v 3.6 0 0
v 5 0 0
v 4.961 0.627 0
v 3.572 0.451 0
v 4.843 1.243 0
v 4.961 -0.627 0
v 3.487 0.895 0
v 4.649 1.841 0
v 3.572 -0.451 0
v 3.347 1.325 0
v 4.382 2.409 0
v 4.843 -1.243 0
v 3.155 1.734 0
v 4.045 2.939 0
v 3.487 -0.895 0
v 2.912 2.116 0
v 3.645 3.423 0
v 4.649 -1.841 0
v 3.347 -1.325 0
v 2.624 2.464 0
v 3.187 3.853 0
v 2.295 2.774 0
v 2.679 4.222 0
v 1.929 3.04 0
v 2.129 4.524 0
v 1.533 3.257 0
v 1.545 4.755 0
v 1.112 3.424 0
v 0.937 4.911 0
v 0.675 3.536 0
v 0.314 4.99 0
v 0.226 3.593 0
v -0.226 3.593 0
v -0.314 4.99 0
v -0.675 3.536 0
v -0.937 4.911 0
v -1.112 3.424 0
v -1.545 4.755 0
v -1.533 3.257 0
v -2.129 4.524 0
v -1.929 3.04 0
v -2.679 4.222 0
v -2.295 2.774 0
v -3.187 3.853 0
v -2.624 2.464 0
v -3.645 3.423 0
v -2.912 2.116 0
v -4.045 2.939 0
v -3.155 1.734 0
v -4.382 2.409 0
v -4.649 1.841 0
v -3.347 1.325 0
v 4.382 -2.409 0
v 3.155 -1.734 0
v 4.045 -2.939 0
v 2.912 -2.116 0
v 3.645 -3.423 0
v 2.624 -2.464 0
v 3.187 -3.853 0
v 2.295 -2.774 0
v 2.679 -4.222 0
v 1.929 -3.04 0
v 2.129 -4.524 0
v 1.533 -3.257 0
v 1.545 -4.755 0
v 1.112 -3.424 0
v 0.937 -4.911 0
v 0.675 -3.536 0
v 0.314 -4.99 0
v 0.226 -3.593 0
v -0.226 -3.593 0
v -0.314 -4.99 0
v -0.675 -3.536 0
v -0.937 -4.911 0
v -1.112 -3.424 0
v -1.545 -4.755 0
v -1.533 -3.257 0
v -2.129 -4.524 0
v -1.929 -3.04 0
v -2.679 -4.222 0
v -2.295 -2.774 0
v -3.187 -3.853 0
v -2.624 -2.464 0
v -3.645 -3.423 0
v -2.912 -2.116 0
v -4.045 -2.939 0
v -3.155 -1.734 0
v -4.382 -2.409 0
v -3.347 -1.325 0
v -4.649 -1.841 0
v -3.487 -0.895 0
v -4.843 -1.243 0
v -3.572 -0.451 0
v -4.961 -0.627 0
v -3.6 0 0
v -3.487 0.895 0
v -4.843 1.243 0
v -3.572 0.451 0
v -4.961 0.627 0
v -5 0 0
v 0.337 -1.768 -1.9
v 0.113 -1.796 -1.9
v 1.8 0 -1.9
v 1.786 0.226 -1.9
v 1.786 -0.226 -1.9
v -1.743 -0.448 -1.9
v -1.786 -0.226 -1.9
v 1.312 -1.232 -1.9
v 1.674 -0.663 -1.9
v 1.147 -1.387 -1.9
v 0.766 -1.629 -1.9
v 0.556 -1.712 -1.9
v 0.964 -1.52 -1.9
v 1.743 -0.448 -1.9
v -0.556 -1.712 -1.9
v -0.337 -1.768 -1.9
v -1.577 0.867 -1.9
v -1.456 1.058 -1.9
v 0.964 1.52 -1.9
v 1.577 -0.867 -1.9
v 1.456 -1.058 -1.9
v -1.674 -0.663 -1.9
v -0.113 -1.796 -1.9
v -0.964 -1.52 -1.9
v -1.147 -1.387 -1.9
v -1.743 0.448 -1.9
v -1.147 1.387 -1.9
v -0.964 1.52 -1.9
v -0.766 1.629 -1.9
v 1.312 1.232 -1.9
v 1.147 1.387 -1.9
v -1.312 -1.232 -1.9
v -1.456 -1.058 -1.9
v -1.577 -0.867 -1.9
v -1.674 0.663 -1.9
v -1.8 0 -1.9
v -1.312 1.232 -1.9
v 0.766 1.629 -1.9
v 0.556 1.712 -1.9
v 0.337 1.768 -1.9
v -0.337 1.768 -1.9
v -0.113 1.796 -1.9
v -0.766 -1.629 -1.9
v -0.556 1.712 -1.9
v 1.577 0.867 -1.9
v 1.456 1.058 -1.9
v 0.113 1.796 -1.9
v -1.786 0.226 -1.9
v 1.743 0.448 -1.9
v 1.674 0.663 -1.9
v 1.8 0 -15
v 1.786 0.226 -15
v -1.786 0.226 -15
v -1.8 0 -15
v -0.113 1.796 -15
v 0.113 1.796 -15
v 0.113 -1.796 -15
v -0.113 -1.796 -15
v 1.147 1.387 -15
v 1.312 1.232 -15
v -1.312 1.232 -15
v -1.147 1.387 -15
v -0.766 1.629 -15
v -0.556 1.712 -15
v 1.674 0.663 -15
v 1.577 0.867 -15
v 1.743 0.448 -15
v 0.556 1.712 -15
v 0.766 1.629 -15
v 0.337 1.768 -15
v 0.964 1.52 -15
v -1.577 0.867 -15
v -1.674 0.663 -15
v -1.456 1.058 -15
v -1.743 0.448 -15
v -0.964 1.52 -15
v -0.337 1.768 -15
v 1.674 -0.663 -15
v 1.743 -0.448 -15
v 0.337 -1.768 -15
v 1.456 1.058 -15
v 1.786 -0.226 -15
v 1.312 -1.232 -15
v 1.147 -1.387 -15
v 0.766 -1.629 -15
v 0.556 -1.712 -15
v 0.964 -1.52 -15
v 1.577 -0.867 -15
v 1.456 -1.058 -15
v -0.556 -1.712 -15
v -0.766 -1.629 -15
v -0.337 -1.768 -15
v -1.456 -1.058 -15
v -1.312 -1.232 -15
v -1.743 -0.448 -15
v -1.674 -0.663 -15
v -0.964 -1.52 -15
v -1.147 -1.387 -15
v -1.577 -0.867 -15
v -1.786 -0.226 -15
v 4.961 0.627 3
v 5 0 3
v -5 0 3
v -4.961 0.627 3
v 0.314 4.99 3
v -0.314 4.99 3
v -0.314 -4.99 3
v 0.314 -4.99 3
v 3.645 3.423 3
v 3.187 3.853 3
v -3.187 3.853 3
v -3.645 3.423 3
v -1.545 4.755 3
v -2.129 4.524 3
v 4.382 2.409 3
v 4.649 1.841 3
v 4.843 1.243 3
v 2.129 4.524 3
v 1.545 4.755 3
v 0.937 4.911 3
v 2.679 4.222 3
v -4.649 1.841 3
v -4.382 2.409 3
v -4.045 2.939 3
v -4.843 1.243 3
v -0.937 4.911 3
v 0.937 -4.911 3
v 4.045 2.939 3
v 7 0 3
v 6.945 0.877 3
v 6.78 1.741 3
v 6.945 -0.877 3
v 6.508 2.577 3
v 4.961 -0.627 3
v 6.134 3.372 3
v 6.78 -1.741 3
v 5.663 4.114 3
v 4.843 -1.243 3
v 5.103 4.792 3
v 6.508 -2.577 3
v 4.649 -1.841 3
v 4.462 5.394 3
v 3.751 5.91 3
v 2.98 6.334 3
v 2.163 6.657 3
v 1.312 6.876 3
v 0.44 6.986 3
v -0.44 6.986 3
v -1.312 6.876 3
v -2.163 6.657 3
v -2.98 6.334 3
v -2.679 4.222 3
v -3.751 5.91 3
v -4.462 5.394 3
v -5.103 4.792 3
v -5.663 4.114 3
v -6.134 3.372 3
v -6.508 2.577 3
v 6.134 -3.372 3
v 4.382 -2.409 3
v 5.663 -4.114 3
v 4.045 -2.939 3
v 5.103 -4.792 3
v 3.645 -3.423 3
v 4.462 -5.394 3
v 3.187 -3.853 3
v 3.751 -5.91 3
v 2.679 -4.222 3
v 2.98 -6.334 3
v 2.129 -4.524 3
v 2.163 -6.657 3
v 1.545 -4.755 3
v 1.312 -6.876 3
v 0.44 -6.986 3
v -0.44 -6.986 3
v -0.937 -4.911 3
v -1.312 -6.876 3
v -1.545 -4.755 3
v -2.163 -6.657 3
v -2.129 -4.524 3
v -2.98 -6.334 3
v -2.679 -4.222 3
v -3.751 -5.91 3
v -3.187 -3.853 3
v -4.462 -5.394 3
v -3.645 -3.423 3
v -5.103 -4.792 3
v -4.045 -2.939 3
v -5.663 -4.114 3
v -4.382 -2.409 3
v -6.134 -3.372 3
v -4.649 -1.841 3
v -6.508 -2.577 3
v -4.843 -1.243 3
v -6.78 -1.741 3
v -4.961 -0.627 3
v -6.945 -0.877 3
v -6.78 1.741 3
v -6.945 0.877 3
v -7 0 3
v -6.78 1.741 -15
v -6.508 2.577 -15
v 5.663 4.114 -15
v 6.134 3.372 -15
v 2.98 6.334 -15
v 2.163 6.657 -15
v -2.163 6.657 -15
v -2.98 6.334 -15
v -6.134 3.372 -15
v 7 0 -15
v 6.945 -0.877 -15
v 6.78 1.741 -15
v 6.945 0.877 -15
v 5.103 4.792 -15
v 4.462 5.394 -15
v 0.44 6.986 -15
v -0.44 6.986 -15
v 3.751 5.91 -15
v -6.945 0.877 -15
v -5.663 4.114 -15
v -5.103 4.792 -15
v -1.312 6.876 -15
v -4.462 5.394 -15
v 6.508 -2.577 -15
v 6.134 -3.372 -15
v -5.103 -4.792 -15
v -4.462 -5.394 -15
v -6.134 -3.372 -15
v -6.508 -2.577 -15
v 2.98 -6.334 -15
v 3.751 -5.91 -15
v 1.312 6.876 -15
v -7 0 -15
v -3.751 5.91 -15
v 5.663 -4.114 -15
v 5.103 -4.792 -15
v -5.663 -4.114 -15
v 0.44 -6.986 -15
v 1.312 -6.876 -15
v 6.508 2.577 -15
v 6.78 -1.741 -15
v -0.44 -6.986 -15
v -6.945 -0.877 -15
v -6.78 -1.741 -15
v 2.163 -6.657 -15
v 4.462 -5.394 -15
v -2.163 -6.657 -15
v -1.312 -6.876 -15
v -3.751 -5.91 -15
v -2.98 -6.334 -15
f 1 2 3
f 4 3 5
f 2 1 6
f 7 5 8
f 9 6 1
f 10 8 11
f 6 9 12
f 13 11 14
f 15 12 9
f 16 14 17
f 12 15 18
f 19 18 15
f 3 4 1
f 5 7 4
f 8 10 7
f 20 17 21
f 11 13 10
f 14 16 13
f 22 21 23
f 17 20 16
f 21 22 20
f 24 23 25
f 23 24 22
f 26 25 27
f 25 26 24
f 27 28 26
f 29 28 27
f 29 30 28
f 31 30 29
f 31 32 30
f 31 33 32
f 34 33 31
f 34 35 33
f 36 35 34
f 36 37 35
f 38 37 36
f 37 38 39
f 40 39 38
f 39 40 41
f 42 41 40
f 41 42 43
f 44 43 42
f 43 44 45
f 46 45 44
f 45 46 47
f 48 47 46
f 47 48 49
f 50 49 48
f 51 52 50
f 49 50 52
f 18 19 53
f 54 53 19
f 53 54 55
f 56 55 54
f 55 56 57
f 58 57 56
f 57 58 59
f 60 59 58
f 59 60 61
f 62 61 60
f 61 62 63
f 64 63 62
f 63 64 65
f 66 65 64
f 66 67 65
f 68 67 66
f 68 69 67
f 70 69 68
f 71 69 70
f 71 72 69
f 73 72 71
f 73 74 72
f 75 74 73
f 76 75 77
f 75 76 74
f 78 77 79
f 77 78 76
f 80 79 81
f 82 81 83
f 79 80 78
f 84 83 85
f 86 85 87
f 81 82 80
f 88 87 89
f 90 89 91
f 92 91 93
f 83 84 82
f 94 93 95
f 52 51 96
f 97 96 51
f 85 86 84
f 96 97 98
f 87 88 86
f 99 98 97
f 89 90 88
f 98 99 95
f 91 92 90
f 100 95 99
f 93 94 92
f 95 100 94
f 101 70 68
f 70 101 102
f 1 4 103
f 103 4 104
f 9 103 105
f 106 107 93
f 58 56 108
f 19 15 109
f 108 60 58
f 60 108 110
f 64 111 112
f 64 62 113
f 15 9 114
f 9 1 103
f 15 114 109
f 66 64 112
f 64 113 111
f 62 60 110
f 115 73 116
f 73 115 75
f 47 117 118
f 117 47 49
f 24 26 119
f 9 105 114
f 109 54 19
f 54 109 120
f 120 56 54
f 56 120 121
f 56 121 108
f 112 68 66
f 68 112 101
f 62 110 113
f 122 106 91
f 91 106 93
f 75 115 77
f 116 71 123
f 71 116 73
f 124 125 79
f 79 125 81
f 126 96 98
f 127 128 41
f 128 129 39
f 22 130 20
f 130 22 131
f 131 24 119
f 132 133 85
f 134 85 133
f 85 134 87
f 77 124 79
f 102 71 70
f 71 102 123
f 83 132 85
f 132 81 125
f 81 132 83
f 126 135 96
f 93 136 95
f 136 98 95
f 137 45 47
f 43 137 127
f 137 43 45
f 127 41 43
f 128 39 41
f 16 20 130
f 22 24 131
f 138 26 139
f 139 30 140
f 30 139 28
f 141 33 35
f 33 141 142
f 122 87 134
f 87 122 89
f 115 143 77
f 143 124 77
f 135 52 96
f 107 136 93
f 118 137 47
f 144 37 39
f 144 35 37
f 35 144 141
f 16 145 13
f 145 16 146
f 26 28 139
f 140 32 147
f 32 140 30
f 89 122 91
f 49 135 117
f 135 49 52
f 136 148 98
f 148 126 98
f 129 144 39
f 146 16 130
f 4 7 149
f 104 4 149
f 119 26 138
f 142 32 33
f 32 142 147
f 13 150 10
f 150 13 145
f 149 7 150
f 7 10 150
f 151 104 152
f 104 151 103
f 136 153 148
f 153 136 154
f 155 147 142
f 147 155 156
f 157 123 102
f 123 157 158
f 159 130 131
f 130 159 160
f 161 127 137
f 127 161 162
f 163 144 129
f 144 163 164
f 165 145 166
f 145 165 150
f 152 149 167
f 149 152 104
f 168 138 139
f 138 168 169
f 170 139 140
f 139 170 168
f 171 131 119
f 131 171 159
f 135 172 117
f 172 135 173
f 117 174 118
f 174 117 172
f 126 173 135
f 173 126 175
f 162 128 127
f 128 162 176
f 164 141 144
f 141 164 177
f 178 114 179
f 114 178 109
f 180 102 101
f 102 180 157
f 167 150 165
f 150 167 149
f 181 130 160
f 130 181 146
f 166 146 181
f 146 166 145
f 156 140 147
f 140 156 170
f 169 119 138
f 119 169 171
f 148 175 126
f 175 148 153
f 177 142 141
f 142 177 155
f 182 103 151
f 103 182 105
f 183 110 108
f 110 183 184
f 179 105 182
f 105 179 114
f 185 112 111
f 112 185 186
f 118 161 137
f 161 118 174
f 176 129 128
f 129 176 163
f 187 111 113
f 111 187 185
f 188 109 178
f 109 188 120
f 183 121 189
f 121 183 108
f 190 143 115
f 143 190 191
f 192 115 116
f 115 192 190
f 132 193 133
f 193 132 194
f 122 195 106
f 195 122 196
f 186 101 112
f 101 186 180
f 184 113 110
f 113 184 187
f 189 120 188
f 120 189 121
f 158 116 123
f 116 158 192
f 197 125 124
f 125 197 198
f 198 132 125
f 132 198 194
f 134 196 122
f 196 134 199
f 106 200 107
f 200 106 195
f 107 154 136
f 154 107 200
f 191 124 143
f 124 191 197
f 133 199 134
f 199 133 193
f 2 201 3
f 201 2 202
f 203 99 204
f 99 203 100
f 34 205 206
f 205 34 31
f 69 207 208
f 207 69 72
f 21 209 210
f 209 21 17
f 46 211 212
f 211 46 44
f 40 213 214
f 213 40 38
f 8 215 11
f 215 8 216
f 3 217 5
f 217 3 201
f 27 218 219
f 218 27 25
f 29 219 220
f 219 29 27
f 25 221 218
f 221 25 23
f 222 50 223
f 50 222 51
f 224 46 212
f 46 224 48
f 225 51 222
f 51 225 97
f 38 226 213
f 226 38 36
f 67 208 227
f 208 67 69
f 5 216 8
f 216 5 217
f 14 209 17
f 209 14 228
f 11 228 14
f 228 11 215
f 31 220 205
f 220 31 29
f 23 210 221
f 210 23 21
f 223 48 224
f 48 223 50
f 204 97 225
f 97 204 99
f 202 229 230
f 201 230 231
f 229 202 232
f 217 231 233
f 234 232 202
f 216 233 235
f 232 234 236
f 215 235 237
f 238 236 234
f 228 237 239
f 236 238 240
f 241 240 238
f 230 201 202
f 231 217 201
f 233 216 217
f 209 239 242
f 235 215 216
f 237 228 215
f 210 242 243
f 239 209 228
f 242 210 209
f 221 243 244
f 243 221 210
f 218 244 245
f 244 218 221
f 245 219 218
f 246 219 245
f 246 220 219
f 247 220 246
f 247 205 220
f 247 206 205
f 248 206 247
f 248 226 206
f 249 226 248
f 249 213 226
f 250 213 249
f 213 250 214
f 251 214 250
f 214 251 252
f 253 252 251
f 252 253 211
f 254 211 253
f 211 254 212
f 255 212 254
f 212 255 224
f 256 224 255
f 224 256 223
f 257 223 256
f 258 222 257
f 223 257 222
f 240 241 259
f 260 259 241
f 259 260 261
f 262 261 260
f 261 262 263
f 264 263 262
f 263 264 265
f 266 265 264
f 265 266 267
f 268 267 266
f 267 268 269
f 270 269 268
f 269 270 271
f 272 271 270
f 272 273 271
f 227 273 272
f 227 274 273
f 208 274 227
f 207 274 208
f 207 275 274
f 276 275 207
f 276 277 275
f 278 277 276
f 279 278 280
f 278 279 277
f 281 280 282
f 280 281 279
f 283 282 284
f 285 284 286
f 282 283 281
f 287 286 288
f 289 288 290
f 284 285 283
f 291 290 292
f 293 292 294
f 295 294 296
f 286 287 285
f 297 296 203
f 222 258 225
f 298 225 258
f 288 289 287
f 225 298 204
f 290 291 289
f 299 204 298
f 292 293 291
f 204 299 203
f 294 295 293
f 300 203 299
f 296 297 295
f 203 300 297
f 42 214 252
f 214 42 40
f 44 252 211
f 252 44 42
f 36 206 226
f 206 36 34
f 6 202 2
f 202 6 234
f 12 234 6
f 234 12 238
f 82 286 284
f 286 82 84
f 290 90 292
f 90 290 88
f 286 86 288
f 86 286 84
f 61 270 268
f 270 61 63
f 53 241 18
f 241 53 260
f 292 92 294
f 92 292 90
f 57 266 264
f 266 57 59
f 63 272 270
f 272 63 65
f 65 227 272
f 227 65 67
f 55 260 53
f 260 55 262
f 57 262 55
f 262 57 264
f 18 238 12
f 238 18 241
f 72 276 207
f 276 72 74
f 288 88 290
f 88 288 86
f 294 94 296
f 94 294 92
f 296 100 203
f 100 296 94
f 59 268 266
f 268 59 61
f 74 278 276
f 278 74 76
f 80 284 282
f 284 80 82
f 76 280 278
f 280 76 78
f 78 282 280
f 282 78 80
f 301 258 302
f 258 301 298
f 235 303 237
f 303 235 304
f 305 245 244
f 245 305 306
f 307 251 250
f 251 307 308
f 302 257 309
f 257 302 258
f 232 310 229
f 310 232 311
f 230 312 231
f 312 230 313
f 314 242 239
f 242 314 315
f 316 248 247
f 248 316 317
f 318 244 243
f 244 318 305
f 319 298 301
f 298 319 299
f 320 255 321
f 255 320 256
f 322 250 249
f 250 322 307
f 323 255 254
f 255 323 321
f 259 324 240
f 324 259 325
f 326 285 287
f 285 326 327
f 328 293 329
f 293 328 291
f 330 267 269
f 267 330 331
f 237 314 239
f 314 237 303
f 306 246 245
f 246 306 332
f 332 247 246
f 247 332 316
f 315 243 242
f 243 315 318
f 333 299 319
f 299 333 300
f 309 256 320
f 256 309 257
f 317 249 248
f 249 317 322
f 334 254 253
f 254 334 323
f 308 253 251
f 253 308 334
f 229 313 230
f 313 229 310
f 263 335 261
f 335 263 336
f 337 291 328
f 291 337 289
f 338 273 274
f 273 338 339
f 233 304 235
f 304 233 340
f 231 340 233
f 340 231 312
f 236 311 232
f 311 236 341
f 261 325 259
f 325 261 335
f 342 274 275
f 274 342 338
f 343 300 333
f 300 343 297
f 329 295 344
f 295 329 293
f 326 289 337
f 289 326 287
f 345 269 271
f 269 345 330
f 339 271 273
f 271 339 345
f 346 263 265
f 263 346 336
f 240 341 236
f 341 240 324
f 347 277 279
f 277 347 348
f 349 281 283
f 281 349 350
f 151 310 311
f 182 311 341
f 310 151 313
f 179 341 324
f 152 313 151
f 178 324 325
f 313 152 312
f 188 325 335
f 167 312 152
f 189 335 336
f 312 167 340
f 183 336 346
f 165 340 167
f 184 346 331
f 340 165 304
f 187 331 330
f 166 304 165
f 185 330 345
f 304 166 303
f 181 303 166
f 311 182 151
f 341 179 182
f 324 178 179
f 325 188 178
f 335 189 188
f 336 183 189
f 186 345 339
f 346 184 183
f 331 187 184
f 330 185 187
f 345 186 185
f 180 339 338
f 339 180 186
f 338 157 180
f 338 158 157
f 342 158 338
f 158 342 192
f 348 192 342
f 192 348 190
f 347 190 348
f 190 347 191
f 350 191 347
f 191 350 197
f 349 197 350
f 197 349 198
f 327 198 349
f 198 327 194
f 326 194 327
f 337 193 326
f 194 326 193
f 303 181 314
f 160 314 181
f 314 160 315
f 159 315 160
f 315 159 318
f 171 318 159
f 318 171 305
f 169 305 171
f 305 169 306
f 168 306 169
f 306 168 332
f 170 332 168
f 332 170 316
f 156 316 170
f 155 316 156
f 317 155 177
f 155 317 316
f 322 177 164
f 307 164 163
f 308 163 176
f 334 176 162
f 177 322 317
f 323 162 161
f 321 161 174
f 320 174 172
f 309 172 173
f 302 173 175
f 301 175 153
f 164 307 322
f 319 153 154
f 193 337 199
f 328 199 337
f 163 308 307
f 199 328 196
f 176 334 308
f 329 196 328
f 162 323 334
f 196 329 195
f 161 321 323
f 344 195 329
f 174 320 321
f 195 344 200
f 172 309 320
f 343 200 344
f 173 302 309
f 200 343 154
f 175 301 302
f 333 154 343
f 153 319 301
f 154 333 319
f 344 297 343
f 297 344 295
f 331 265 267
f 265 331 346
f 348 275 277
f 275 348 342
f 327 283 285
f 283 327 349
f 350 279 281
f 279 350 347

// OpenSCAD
$fn = 50;


difference() {
	union() {
		translate(v = [0, 0, -15.0000000000]) {
			cylinder(h = 18, r = 7.0000000000);
		}
	}
	union() {
		translate(v = [0, 0, 0]) {
			rotate(a = [0, 0, 0]) {
				difference() {
					union() {
						translate(v = [0, 0, -18.0000000000]) {
							cylinder(h = 18, r = 1.5000000000);
						}
						translate(v = [0, 0, -1.9000000000]) {
							cylinder(h = 1.9000000000, r1 = 1.8000000000, r2 = 3.6000000000);
						}
						translate(v = [0, 0, -18.0000000000]) {
							cylinder(h = 18, r = 1.8000000000);
						}
						translate(v = [0, 0, -18.0000000000]) {
							cylinder(h = 18, r = 1.5000000000);
						}
					}
					union();
				}
			}
		}
		#cylinder(h = 3, r = 5.0000000000);
	}
}
